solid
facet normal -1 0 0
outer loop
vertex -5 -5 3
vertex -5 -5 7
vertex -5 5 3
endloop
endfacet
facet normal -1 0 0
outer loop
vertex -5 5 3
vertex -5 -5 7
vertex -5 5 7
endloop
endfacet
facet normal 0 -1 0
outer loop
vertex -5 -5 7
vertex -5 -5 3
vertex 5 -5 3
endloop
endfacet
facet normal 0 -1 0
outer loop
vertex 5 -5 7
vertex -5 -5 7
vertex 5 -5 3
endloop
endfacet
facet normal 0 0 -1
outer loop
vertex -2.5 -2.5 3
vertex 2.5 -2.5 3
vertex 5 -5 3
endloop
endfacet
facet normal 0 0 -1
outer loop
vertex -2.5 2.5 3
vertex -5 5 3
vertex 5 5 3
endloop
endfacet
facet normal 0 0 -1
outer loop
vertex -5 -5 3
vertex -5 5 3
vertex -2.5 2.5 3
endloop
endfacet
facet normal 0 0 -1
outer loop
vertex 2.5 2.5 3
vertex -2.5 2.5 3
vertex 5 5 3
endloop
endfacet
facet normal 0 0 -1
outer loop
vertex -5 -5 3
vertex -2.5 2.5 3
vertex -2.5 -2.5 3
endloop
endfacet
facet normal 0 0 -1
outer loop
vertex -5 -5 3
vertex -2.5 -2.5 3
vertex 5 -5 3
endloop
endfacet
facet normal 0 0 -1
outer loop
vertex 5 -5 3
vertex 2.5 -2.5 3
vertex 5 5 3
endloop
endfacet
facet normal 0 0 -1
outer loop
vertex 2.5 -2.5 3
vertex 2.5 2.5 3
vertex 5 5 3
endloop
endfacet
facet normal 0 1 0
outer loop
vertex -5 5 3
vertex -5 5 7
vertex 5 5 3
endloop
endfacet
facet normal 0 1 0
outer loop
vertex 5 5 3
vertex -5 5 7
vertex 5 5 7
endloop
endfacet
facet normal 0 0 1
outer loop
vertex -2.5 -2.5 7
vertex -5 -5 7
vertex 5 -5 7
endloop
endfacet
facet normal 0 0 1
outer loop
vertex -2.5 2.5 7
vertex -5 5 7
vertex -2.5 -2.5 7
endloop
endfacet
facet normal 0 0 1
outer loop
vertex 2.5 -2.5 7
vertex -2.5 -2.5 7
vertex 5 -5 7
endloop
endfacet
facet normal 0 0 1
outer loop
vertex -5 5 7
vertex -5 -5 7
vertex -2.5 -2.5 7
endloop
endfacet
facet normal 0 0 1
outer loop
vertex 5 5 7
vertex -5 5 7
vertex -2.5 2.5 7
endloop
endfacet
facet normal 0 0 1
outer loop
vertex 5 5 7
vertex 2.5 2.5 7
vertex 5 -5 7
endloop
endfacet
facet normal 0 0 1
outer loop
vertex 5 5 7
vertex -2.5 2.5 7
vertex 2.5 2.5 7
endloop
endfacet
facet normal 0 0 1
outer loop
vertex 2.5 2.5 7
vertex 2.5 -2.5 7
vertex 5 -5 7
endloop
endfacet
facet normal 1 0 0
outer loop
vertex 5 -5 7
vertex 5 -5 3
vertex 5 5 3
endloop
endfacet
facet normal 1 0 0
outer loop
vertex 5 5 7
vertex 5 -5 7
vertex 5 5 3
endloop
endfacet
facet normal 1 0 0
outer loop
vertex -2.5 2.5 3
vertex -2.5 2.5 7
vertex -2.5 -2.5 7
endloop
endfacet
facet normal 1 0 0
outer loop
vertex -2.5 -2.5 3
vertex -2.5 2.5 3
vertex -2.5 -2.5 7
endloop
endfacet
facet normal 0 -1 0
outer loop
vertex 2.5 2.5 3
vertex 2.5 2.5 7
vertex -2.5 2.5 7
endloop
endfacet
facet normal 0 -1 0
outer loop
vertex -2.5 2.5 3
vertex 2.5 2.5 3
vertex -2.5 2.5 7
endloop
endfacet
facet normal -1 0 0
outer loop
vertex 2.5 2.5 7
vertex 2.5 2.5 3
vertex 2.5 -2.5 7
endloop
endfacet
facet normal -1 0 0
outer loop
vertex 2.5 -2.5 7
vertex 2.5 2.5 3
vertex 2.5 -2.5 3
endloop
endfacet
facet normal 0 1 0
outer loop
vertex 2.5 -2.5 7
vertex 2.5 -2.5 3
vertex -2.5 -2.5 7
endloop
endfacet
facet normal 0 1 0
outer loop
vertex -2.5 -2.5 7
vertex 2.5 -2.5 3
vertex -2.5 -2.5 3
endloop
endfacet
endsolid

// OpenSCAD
// short frame test print

translate([0,0,5]) difference() {
  cube(size=[10,10,4],center=true);
  cube(size=[5,5,5],center=true);
}
